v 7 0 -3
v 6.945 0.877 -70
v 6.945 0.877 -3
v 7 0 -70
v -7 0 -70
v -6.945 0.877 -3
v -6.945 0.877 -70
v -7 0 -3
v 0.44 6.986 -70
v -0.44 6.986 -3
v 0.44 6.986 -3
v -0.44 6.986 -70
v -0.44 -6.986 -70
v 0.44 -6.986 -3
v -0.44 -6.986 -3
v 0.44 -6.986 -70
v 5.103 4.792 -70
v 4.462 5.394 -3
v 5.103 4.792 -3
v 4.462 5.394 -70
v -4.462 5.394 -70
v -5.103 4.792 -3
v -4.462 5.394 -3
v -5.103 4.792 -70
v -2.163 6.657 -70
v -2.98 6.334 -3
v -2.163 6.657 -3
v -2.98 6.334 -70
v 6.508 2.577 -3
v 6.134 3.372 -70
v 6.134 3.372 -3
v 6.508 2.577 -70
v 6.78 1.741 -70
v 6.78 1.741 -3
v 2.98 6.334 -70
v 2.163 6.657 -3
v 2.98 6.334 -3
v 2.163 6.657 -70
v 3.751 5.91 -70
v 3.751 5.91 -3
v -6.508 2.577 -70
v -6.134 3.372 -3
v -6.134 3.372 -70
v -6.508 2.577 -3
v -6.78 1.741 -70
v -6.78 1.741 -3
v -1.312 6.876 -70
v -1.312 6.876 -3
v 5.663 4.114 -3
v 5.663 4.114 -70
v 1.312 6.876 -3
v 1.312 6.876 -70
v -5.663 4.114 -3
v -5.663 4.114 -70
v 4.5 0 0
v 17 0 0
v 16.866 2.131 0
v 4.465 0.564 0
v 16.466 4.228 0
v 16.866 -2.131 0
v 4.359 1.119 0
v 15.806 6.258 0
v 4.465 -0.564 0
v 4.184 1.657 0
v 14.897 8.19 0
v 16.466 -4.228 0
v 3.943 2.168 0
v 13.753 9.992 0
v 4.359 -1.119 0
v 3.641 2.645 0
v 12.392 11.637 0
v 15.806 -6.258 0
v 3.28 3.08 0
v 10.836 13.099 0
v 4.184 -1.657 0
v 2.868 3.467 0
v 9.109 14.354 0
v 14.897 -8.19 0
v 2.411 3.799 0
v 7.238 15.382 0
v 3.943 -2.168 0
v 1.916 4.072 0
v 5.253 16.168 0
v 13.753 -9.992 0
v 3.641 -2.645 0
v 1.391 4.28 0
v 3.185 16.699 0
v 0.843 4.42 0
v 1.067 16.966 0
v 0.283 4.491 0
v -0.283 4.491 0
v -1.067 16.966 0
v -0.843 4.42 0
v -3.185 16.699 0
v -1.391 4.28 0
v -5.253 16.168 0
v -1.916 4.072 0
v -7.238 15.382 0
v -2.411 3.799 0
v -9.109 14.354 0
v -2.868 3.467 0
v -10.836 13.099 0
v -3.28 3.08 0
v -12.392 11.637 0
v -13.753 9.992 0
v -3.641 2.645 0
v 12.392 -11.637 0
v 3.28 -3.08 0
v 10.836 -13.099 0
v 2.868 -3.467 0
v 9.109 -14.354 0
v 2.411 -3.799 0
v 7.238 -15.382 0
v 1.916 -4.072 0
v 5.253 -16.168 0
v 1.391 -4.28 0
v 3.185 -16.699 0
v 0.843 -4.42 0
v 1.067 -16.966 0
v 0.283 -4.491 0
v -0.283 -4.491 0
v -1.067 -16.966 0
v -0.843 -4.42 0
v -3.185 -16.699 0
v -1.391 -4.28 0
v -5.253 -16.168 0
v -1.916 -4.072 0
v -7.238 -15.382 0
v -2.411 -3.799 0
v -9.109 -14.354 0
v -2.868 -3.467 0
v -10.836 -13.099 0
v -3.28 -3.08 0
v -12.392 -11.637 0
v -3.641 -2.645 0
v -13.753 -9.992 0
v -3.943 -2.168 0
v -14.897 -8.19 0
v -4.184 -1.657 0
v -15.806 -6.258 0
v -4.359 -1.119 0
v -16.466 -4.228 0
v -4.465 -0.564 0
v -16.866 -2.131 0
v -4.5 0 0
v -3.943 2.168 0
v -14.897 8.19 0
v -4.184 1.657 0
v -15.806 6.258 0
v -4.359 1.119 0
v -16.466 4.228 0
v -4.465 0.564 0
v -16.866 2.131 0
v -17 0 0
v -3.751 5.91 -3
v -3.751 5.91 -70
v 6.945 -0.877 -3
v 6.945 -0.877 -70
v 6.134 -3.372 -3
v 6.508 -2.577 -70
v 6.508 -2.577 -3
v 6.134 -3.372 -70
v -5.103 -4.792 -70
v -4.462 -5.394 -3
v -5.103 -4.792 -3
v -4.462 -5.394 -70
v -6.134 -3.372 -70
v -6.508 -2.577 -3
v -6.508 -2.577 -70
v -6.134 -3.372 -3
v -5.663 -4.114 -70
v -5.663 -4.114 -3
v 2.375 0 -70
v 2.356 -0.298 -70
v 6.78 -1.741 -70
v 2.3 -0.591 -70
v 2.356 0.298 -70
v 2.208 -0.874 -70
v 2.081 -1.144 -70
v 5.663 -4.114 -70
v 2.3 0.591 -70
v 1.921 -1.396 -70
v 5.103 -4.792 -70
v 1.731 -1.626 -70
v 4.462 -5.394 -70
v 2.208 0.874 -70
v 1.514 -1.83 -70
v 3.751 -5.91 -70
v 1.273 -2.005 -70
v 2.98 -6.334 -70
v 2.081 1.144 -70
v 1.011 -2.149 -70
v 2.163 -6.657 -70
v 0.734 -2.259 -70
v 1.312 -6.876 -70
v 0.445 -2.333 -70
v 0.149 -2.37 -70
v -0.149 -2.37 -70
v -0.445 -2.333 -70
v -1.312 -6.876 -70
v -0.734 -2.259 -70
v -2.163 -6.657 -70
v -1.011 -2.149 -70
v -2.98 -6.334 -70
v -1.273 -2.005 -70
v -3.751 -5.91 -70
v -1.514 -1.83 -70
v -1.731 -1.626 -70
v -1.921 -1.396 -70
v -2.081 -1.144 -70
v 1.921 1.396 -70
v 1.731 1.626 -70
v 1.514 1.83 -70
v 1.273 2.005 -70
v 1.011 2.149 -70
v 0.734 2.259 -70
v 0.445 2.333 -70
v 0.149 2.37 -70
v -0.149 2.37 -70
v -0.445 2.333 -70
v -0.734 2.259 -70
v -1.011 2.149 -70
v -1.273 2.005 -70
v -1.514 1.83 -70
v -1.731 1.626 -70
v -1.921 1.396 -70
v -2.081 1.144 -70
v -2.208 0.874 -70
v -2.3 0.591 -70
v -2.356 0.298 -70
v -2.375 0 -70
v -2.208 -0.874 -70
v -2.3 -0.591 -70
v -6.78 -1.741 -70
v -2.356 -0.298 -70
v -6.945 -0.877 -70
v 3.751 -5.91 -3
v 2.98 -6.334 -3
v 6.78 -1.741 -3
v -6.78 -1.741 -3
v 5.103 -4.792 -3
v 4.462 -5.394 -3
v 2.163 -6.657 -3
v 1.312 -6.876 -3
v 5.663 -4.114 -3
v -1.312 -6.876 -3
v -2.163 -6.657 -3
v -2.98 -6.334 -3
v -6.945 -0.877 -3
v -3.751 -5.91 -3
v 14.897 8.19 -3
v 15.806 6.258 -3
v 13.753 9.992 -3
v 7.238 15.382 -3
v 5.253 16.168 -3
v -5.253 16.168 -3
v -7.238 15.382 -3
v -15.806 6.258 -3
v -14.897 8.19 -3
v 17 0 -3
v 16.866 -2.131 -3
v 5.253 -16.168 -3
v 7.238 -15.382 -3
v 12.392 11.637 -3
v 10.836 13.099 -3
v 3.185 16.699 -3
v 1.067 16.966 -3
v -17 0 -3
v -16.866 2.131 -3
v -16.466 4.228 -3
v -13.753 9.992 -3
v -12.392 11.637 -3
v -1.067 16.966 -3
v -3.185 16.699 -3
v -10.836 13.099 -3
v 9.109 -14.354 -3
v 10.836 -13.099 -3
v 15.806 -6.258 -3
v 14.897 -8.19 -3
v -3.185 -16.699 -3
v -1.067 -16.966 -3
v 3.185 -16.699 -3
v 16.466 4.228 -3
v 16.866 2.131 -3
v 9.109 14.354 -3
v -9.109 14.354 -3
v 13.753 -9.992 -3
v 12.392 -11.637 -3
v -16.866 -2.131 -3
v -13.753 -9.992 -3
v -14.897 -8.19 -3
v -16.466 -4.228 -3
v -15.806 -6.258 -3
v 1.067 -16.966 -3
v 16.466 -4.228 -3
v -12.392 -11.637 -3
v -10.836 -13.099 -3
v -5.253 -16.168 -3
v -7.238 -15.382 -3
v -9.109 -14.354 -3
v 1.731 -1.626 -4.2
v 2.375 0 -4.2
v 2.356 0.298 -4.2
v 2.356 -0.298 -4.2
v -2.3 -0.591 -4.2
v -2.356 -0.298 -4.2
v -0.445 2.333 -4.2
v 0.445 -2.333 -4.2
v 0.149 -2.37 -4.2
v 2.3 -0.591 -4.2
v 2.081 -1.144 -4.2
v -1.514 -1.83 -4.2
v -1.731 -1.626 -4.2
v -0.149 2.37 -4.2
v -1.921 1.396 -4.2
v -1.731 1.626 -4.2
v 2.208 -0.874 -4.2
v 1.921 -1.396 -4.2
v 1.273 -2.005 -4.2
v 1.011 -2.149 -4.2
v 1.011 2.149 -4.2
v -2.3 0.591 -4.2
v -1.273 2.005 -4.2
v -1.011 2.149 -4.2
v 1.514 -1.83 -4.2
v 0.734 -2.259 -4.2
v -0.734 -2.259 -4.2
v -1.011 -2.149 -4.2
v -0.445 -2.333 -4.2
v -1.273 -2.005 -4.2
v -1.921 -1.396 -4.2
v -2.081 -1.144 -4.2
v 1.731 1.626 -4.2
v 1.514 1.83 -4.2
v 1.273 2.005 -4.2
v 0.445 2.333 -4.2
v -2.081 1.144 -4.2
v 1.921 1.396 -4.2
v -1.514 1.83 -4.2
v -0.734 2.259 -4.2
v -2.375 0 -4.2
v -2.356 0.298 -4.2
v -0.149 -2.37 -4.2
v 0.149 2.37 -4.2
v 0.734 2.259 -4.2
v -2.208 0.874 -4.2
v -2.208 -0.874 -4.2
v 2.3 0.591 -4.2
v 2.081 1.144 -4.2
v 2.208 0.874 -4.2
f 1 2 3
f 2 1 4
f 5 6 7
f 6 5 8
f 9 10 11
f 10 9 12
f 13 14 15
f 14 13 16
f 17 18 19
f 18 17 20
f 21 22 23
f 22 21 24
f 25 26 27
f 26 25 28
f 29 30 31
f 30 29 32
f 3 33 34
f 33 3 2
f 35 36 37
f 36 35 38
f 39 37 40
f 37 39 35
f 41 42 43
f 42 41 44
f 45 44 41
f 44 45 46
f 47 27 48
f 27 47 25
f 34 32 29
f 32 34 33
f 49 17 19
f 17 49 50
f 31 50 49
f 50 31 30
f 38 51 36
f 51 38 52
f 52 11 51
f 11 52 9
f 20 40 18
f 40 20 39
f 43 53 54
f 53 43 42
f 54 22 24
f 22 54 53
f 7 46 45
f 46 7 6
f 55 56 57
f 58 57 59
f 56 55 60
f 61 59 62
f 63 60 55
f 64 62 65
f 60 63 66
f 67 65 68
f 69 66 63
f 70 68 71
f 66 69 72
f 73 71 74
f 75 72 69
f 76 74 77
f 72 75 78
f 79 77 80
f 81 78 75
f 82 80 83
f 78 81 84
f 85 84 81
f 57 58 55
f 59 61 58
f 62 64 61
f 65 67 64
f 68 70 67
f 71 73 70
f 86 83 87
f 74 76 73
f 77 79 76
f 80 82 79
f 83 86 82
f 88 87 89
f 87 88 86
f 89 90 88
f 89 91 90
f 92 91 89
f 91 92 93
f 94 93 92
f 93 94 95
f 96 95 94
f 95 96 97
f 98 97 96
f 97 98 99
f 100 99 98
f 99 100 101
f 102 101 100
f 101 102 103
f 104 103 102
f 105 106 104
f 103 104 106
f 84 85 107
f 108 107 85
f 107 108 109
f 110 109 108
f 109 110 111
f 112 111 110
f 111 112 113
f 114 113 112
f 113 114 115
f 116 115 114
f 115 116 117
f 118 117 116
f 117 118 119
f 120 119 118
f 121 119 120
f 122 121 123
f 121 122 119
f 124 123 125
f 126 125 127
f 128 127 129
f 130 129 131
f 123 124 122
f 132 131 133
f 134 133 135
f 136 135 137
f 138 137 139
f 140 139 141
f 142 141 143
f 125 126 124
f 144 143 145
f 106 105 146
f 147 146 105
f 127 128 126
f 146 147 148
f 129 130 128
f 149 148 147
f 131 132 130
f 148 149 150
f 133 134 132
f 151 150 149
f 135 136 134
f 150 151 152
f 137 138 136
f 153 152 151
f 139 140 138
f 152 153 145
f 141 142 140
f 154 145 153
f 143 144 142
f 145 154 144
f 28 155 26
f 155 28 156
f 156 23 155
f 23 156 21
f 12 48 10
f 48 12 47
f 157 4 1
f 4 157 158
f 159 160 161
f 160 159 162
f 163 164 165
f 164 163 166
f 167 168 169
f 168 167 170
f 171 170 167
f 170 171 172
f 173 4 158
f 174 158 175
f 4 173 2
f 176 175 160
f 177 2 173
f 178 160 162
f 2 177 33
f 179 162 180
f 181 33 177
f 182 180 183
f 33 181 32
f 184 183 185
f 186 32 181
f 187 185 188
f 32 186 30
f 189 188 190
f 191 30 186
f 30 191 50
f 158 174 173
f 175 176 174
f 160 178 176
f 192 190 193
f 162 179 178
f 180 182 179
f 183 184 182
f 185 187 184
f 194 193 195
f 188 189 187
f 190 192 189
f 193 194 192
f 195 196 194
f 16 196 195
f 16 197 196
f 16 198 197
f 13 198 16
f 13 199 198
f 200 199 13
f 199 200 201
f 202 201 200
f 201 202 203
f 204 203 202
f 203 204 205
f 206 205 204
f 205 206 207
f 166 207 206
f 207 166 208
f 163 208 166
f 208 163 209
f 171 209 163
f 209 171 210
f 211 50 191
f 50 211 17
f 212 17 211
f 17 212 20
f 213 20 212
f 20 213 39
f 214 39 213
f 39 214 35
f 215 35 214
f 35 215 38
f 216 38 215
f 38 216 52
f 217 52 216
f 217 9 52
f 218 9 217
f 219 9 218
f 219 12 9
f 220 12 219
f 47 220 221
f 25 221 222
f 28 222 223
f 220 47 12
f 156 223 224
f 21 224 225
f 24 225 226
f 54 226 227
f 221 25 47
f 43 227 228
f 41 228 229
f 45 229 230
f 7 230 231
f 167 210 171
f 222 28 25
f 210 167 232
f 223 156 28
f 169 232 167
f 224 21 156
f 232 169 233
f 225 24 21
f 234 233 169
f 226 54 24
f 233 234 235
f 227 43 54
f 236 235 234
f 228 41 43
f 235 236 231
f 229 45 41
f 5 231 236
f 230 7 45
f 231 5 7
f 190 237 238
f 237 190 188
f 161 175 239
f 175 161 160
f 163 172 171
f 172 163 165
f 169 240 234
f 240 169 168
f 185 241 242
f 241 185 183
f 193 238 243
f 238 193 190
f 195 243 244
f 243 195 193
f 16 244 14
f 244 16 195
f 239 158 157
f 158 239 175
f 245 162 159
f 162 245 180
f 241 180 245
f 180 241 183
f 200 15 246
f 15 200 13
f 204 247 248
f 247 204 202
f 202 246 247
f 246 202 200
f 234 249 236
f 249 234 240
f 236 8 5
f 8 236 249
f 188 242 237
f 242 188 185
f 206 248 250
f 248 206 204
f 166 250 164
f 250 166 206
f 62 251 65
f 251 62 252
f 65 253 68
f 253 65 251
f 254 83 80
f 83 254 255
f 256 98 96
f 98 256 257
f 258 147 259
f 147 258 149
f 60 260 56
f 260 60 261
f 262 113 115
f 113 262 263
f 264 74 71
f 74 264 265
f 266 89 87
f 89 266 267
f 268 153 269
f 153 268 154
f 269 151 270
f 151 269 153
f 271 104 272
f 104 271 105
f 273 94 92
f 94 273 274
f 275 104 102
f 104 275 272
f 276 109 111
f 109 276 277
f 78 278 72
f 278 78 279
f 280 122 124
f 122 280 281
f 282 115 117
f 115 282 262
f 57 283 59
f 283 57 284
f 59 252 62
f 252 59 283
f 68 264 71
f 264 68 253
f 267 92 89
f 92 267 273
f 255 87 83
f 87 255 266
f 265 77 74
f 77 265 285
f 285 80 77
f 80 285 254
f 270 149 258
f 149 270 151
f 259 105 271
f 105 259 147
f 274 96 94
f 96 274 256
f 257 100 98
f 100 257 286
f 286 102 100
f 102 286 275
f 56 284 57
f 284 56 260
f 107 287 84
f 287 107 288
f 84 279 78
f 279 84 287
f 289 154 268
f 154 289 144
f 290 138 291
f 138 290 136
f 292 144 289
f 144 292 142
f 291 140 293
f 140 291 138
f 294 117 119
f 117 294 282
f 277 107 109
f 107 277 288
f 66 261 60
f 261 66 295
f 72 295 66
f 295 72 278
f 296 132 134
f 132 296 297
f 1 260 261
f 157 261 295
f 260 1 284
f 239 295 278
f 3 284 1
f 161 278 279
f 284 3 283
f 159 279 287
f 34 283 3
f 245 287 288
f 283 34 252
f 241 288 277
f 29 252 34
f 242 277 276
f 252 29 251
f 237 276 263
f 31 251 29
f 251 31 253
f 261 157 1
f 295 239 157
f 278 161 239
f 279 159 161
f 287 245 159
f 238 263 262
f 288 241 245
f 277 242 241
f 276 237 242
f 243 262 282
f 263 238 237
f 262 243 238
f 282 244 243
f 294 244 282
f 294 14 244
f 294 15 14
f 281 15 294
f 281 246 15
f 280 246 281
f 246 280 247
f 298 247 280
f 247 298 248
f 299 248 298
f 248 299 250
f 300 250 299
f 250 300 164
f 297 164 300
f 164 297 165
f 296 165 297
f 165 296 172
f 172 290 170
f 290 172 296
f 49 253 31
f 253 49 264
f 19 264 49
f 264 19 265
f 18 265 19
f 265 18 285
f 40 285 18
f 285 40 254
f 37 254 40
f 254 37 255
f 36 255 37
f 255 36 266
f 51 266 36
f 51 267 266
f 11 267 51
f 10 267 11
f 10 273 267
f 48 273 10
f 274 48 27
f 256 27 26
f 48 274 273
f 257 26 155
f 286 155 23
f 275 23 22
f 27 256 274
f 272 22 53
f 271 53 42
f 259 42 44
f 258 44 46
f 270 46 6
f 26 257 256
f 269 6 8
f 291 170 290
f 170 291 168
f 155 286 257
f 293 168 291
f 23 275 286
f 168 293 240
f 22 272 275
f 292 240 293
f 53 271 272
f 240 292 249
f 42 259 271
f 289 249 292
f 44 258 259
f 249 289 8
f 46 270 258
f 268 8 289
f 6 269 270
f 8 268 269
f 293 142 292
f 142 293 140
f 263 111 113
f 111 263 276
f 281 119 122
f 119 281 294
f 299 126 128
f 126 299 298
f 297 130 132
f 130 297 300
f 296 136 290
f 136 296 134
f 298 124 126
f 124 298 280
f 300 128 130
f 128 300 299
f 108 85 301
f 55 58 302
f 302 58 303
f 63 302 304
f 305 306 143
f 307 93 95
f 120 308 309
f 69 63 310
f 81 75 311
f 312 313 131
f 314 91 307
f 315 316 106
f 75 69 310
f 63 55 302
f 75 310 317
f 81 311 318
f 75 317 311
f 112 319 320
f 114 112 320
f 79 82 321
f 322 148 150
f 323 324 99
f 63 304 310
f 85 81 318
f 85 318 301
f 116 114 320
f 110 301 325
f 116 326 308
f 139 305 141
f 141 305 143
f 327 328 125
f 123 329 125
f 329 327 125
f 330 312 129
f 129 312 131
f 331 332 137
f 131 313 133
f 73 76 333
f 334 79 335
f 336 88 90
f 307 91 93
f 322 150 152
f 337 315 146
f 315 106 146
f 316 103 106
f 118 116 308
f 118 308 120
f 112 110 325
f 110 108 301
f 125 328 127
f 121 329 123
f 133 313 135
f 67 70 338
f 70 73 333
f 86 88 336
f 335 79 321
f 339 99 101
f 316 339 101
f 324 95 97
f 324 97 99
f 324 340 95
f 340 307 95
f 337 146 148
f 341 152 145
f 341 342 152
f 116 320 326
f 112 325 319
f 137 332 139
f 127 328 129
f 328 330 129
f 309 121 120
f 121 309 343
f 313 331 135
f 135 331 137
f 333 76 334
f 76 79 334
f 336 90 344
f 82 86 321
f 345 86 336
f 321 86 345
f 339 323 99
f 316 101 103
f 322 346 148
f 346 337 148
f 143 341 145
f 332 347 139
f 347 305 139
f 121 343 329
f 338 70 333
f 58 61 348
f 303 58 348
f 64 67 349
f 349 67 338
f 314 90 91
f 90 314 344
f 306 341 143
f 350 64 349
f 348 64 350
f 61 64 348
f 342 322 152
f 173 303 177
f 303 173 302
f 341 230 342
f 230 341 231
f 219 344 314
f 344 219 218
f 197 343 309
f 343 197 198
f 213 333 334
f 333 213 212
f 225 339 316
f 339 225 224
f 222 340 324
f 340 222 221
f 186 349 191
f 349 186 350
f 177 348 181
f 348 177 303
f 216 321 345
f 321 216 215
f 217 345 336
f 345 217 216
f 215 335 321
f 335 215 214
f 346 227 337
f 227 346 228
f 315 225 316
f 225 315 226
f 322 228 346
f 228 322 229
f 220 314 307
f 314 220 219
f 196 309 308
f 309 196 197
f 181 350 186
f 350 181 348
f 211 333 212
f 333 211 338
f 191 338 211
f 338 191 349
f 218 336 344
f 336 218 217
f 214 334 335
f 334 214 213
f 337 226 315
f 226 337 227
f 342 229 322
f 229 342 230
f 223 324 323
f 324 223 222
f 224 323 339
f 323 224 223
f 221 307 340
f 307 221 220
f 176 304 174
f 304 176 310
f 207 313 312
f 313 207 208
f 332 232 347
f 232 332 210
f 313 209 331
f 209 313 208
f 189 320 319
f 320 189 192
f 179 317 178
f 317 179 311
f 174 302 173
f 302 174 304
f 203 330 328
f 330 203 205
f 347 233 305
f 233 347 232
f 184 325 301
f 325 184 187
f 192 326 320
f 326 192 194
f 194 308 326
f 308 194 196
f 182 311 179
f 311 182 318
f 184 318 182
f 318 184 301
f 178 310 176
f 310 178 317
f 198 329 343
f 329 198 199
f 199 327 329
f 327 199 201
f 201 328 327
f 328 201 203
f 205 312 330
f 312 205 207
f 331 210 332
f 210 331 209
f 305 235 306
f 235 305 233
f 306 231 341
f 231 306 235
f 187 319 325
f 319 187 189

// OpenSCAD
$fn = 50;


difference() {
	union() {
		translate(v = [0, 0, -70.0000000000]) {
			cylinder(h = 70, r = 7.0000000000);
		}
		translate(v = [0, 0, -3.0000000000]) {
			cylinder(h = 3, r = 17.0000000000);
		}
	}
	union() {
		translate(v = [0, 0, 0]) {
			rotate(a = [0, 0, 0]) {
				difference() {
					union() {
						#translate(v = [0, 0, -70.0000000000]) {
							cylinder(h = 70, r = 2.2500000000);
						}
						#translate(v = [0, 0, -4.2000000000]) {
							cylinder(h = 4.2000000000, r1 = 2.3750000000, r2 = 4.5000000000);
						}
						#translate(v = [0, 0, -70.0000000000]) {
							cylinder(h = 70, r = 2.3750000000);
						}
						#translate(v = [0, 0, -70.0000000000]) {
							cylinder(h = 70, r = 2.2500000000);
						}
					}
					union();
				}
			}
		}
	}
}
